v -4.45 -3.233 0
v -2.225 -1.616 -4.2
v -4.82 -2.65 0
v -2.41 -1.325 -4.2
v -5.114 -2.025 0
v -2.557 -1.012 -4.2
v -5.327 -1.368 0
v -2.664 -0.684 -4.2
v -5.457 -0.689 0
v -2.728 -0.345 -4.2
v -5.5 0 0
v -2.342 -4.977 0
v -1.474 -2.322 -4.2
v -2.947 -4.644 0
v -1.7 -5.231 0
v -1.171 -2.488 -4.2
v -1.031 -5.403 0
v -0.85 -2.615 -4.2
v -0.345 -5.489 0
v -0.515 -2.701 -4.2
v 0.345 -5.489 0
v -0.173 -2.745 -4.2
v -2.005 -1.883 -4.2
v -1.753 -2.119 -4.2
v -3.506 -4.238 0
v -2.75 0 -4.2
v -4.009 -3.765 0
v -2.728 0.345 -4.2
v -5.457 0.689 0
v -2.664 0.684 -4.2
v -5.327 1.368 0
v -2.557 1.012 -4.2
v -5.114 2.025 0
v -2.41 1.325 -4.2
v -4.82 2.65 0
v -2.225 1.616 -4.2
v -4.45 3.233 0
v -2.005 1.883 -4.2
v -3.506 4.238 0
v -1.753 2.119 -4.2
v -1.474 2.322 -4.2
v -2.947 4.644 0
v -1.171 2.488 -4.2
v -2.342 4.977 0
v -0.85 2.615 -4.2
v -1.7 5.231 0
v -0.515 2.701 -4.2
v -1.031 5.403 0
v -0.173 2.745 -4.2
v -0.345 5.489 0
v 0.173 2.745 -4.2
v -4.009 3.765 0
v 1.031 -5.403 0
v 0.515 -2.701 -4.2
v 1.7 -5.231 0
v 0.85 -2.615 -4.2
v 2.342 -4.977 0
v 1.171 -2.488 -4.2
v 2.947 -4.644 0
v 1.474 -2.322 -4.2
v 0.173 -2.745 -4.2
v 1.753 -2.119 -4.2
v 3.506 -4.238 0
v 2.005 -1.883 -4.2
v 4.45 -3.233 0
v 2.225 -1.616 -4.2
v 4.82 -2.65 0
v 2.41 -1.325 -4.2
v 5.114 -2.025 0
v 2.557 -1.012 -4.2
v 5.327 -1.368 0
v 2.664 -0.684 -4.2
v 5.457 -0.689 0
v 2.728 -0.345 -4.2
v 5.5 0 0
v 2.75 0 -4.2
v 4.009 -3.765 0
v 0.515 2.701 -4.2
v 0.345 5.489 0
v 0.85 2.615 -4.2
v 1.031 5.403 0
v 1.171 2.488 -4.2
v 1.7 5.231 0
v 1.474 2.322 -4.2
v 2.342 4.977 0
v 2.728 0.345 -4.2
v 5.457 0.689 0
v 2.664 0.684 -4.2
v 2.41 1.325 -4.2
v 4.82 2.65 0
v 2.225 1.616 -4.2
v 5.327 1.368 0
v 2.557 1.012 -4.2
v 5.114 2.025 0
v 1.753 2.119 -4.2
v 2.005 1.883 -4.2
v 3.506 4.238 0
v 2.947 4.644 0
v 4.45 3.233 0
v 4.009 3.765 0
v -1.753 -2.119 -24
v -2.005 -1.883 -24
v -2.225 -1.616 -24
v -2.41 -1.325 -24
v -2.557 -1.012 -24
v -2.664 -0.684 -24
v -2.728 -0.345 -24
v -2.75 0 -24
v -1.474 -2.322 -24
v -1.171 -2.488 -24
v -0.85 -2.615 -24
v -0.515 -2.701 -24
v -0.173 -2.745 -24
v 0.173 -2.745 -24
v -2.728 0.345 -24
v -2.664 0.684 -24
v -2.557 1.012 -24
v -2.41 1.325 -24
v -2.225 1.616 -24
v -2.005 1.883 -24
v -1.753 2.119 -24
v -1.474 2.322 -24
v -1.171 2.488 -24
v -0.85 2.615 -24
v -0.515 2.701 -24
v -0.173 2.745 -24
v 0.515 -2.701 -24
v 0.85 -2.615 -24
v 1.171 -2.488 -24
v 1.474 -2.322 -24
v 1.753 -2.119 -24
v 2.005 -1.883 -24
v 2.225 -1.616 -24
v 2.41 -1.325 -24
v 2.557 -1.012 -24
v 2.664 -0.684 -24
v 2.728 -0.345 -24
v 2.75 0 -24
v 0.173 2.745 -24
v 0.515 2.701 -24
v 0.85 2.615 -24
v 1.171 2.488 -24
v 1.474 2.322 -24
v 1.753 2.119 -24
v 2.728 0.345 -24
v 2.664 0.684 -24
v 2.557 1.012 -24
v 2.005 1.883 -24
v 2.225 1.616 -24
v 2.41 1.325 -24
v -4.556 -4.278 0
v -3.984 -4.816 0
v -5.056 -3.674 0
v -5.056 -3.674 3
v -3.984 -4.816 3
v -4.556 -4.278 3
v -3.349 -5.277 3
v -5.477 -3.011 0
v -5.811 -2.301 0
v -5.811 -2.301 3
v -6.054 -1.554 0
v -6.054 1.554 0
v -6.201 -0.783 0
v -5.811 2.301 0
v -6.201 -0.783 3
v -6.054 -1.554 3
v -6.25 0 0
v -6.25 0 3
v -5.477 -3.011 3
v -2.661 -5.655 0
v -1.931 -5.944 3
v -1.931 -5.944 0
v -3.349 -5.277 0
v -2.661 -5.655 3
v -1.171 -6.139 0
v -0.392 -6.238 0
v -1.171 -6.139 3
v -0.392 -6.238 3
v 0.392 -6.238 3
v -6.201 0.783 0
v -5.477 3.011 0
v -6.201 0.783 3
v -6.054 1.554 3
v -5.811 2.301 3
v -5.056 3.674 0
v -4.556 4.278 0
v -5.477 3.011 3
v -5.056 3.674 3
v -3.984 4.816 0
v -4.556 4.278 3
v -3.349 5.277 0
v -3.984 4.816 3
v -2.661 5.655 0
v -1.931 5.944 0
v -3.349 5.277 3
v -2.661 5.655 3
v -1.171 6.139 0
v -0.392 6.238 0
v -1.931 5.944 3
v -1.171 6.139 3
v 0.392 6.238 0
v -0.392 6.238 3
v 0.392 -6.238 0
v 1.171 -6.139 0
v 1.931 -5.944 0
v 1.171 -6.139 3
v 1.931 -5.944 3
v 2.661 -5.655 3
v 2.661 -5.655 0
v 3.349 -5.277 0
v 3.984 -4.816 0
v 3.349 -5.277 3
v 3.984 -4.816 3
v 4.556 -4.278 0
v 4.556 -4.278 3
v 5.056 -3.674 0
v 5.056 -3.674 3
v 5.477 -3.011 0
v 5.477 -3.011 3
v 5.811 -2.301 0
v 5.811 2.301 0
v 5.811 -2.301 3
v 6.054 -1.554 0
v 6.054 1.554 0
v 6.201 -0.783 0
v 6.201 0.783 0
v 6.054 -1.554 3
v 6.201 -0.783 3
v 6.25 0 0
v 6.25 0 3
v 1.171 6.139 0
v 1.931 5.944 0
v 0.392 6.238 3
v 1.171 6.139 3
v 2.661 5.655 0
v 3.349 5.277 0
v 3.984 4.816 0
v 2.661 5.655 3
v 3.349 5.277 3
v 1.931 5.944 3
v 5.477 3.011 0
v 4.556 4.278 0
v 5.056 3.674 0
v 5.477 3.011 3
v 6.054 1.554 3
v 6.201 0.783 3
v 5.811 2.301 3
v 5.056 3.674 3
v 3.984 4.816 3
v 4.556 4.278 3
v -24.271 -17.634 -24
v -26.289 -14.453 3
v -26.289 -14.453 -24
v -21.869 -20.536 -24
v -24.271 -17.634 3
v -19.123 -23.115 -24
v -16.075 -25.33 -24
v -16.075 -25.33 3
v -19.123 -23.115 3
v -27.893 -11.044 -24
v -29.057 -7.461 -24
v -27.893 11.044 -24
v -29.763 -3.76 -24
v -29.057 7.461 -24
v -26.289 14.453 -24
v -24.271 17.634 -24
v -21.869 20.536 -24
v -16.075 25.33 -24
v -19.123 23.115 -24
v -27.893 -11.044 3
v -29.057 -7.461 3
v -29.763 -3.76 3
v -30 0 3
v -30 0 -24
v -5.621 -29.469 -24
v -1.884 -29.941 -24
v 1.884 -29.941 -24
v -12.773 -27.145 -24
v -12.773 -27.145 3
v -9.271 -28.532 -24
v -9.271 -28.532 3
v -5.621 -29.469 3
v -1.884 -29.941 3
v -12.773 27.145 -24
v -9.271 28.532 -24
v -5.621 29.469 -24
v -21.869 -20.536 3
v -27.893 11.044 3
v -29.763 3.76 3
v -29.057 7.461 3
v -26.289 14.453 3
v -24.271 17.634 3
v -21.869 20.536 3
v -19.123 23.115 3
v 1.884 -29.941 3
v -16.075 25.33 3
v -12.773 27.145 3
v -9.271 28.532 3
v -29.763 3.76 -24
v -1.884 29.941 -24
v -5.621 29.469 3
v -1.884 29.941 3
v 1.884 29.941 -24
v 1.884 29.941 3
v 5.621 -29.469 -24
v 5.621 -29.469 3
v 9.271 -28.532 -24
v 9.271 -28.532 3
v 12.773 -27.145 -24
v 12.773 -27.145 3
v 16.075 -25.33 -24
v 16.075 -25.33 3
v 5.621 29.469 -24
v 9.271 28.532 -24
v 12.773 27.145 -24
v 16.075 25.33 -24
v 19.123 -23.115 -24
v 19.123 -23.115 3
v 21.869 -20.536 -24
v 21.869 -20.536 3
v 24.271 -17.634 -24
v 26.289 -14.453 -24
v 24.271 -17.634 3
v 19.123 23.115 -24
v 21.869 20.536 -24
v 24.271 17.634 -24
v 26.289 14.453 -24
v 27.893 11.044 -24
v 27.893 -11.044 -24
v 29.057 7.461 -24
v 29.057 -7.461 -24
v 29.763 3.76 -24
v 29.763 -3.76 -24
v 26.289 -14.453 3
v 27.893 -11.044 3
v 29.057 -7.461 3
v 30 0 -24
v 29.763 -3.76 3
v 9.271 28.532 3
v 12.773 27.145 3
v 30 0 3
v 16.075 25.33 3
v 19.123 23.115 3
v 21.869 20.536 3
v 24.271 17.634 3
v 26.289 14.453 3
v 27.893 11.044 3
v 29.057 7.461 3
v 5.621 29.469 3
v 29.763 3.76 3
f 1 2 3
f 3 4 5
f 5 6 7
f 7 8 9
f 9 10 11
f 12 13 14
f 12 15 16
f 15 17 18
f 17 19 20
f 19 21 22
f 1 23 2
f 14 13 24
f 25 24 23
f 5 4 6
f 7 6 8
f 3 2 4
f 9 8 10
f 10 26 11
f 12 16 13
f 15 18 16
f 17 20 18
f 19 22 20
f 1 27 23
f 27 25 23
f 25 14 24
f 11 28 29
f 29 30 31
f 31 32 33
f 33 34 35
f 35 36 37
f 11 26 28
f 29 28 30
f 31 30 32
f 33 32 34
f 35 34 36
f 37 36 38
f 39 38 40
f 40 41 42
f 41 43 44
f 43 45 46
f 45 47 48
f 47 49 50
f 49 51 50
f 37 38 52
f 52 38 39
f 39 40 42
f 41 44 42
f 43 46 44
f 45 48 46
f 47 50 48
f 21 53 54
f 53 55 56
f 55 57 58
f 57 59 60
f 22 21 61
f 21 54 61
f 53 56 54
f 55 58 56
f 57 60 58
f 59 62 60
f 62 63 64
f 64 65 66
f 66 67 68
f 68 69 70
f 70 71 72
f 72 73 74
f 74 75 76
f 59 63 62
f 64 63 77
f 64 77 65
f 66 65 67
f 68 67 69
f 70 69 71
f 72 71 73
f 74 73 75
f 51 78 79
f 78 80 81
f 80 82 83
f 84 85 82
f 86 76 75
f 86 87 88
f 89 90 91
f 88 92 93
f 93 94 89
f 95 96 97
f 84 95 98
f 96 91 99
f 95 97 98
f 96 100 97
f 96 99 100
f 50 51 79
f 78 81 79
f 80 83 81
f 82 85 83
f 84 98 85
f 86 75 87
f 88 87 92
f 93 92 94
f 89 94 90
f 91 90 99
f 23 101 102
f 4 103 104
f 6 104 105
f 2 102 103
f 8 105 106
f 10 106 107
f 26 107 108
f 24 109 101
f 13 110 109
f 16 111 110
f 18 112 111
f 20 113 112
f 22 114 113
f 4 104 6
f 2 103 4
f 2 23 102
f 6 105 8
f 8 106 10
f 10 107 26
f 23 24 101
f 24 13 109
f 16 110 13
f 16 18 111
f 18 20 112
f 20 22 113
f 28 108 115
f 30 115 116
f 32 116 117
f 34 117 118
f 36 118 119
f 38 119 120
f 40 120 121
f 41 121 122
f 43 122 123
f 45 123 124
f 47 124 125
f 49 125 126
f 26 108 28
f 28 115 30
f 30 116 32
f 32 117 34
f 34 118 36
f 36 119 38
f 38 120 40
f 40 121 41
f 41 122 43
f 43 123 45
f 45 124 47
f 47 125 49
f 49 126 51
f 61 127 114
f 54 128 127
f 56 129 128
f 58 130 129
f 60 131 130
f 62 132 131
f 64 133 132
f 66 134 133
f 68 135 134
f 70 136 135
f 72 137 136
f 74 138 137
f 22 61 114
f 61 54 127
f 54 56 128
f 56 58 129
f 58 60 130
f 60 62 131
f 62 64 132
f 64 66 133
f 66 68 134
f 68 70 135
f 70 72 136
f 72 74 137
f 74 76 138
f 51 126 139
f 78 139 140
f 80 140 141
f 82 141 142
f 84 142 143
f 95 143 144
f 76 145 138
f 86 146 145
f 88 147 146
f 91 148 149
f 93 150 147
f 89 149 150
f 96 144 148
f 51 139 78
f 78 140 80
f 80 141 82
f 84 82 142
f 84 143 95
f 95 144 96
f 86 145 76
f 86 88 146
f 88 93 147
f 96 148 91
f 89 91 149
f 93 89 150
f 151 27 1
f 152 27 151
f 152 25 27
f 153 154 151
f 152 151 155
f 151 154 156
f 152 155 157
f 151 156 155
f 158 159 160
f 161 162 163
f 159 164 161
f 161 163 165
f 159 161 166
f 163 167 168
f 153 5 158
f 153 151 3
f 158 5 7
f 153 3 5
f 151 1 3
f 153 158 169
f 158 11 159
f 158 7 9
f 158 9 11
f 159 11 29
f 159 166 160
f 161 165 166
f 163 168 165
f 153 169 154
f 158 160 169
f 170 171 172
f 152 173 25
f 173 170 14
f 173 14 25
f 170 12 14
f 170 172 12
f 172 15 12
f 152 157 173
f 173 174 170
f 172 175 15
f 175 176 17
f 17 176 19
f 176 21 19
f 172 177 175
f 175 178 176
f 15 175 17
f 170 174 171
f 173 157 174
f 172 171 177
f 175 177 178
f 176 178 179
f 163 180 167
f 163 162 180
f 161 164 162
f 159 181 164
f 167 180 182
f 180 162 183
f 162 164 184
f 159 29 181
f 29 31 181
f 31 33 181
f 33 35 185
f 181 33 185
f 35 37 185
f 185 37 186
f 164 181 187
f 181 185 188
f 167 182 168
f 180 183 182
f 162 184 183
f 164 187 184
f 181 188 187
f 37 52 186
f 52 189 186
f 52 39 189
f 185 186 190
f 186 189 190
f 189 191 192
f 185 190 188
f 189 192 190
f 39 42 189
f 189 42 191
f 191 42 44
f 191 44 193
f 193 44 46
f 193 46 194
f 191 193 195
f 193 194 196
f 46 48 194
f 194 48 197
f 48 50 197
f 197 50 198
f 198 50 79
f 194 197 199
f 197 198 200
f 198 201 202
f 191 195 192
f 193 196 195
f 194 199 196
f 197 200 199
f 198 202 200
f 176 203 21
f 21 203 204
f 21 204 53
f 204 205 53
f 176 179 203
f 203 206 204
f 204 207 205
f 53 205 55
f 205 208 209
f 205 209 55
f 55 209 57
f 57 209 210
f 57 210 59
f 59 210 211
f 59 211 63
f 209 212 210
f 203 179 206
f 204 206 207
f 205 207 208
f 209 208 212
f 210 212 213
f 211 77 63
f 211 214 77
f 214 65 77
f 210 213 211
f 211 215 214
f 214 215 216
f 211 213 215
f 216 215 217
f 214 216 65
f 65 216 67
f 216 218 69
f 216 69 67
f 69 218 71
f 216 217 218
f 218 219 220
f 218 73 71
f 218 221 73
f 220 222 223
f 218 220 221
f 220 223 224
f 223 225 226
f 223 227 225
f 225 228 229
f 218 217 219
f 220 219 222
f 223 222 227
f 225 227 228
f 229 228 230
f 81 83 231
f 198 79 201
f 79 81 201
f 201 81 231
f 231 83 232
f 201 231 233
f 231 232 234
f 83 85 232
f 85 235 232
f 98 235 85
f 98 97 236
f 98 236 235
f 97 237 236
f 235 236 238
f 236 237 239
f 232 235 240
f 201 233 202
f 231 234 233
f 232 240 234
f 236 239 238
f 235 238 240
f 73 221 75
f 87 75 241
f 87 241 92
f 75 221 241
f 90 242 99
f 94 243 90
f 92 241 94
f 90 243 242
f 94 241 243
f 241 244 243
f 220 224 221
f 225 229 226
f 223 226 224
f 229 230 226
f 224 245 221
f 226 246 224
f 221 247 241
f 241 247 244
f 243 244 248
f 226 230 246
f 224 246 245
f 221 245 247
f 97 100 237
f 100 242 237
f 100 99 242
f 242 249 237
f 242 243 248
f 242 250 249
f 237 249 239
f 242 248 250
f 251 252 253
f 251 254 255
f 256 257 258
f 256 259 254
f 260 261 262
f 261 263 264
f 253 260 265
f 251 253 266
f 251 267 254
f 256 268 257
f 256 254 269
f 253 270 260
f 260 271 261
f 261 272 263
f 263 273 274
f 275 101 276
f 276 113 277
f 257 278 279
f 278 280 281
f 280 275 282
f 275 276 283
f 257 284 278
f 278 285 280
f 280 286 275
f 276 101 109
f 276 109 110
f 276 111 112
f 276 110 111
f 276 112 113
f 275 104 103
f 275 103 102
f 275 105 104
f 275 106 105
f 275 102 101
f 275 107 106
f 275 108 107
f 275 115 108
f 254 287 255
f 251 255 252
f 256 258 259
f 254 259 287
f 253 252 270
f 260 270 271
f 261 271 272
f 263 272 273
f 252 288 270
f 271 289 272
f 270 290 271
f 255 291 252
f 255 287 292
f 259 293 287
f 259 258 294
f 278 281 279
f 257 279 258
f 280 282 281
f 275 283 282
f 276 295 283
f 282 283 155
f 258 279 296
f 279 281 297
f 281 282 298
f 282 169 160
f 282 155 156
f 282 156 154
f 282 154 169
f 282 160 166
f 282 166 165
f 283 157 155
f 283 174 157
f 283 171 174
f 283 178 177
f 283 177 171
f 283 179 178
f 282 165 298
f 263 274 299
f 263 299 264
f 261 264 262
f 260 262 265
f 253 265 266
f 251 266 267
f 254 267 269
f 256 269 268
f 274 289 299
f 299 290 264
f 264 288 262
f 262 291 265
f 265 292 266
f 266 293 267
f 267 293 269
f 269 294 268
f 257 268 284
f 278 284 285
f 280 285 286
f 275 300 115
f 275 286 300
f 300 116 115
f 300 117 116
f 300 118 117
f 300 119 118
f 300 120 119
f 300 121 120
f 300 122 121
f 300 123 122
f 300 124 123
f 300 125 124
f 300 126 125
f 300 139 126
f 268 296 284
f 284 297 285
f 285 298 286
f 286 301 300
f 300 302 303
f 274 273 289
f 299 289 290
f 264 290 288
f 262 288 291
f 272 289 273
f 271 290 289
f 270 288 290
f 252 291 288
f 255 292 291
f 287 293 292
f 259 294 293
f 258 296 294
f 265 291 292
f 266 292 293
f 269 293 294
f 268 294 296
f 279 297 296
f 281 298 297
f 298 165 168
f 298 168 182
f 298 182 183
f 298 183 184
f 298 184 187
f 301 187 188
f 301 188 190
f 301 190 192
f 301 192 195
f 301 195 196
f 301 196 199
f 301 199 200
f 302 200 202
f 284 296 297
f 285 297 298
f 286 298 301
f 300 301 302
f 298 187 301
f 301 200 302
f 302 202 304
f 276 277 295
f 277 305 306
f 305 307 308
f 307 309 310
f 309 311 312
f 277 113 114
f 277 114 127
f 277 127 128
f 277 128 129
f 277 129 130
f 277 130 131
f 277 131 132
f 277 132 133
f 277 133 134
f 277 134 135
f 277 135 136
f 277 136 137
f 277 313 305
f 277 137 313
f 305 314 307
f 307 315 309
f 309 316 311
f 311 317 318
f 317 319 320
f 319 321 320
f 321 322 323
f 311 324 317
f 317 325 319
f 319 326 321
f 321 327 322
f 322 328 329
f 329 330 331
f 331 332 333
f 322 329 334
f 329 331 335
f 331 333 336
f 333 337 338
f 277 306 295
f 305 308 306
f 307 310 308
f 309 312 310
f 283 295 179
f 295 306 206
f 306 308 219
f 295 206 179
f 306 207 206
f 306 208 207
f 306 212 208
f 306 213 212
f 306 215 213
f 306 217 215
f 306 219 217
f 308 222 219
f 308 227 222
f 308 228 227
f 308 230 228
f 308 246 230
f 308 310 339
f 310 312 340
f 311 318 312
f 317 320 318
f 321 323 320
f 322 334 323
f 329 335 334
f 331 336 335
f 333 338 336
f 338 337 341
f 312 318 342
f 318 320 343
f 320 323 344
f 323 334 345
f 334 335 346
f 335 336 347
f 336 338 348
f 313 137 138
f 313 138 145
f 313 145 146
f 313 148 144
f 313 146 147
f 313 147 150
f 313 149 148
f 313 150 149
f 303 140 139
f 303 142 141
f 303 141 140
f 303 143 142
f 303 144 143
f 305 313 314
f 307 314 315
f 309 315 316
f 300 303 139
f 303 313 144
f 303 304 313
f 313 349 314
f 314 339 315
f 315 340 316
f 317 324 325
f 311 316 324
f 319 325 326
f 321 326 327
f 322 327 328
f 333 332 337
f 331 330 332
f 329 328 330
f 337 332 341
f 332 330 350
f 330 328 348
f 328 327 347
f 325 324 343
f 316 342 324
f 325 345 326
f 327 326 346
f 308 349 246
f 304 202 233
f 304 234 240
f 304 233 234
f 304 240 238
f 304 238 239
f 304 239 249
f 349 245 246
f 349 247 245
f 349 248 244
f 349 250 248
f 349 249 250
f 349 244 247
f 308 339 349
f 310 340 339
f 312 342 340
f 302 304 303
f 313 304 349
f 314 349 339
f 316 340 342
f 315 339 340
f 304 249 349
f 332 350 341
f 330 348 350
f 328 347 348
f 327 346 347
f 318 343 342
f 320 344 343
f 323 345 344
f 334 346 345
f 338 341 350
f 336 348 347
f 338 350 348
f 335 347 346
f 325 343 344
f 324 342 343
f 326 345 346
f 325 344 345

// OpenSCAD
$fn = 50;

difference() {
	union() {
		translate(v = [0, 0, -24.0]) {
			cylinder(h = 27, r = 30.0);
		}
	}
	union() {
		translate(v = [0, 0, 0]) {
			rotate(a = [0, 0, 0]) {
				difference() {
					union() {
						translate(v = [0, 0, -27.0]) {
							cylinder(h = 27, r = 2.25);
						}
						translate(v = [0, 0, -4.2]) {
							cylinder(h = 4.2, r1 = 2.75, r2 = 5.5);
						}
						translate(v = [0, 0, -27.0]) {
							cylinder(h = 27, r = 2.75);
						}
						translate(v = [0, 0, -27.0]) {
							cylinder(h = 27, r = 2.25);
						}
					}
					union();
				}
			}
		}
		#cylinder(h = 3, r = 6.25);
	}
}
